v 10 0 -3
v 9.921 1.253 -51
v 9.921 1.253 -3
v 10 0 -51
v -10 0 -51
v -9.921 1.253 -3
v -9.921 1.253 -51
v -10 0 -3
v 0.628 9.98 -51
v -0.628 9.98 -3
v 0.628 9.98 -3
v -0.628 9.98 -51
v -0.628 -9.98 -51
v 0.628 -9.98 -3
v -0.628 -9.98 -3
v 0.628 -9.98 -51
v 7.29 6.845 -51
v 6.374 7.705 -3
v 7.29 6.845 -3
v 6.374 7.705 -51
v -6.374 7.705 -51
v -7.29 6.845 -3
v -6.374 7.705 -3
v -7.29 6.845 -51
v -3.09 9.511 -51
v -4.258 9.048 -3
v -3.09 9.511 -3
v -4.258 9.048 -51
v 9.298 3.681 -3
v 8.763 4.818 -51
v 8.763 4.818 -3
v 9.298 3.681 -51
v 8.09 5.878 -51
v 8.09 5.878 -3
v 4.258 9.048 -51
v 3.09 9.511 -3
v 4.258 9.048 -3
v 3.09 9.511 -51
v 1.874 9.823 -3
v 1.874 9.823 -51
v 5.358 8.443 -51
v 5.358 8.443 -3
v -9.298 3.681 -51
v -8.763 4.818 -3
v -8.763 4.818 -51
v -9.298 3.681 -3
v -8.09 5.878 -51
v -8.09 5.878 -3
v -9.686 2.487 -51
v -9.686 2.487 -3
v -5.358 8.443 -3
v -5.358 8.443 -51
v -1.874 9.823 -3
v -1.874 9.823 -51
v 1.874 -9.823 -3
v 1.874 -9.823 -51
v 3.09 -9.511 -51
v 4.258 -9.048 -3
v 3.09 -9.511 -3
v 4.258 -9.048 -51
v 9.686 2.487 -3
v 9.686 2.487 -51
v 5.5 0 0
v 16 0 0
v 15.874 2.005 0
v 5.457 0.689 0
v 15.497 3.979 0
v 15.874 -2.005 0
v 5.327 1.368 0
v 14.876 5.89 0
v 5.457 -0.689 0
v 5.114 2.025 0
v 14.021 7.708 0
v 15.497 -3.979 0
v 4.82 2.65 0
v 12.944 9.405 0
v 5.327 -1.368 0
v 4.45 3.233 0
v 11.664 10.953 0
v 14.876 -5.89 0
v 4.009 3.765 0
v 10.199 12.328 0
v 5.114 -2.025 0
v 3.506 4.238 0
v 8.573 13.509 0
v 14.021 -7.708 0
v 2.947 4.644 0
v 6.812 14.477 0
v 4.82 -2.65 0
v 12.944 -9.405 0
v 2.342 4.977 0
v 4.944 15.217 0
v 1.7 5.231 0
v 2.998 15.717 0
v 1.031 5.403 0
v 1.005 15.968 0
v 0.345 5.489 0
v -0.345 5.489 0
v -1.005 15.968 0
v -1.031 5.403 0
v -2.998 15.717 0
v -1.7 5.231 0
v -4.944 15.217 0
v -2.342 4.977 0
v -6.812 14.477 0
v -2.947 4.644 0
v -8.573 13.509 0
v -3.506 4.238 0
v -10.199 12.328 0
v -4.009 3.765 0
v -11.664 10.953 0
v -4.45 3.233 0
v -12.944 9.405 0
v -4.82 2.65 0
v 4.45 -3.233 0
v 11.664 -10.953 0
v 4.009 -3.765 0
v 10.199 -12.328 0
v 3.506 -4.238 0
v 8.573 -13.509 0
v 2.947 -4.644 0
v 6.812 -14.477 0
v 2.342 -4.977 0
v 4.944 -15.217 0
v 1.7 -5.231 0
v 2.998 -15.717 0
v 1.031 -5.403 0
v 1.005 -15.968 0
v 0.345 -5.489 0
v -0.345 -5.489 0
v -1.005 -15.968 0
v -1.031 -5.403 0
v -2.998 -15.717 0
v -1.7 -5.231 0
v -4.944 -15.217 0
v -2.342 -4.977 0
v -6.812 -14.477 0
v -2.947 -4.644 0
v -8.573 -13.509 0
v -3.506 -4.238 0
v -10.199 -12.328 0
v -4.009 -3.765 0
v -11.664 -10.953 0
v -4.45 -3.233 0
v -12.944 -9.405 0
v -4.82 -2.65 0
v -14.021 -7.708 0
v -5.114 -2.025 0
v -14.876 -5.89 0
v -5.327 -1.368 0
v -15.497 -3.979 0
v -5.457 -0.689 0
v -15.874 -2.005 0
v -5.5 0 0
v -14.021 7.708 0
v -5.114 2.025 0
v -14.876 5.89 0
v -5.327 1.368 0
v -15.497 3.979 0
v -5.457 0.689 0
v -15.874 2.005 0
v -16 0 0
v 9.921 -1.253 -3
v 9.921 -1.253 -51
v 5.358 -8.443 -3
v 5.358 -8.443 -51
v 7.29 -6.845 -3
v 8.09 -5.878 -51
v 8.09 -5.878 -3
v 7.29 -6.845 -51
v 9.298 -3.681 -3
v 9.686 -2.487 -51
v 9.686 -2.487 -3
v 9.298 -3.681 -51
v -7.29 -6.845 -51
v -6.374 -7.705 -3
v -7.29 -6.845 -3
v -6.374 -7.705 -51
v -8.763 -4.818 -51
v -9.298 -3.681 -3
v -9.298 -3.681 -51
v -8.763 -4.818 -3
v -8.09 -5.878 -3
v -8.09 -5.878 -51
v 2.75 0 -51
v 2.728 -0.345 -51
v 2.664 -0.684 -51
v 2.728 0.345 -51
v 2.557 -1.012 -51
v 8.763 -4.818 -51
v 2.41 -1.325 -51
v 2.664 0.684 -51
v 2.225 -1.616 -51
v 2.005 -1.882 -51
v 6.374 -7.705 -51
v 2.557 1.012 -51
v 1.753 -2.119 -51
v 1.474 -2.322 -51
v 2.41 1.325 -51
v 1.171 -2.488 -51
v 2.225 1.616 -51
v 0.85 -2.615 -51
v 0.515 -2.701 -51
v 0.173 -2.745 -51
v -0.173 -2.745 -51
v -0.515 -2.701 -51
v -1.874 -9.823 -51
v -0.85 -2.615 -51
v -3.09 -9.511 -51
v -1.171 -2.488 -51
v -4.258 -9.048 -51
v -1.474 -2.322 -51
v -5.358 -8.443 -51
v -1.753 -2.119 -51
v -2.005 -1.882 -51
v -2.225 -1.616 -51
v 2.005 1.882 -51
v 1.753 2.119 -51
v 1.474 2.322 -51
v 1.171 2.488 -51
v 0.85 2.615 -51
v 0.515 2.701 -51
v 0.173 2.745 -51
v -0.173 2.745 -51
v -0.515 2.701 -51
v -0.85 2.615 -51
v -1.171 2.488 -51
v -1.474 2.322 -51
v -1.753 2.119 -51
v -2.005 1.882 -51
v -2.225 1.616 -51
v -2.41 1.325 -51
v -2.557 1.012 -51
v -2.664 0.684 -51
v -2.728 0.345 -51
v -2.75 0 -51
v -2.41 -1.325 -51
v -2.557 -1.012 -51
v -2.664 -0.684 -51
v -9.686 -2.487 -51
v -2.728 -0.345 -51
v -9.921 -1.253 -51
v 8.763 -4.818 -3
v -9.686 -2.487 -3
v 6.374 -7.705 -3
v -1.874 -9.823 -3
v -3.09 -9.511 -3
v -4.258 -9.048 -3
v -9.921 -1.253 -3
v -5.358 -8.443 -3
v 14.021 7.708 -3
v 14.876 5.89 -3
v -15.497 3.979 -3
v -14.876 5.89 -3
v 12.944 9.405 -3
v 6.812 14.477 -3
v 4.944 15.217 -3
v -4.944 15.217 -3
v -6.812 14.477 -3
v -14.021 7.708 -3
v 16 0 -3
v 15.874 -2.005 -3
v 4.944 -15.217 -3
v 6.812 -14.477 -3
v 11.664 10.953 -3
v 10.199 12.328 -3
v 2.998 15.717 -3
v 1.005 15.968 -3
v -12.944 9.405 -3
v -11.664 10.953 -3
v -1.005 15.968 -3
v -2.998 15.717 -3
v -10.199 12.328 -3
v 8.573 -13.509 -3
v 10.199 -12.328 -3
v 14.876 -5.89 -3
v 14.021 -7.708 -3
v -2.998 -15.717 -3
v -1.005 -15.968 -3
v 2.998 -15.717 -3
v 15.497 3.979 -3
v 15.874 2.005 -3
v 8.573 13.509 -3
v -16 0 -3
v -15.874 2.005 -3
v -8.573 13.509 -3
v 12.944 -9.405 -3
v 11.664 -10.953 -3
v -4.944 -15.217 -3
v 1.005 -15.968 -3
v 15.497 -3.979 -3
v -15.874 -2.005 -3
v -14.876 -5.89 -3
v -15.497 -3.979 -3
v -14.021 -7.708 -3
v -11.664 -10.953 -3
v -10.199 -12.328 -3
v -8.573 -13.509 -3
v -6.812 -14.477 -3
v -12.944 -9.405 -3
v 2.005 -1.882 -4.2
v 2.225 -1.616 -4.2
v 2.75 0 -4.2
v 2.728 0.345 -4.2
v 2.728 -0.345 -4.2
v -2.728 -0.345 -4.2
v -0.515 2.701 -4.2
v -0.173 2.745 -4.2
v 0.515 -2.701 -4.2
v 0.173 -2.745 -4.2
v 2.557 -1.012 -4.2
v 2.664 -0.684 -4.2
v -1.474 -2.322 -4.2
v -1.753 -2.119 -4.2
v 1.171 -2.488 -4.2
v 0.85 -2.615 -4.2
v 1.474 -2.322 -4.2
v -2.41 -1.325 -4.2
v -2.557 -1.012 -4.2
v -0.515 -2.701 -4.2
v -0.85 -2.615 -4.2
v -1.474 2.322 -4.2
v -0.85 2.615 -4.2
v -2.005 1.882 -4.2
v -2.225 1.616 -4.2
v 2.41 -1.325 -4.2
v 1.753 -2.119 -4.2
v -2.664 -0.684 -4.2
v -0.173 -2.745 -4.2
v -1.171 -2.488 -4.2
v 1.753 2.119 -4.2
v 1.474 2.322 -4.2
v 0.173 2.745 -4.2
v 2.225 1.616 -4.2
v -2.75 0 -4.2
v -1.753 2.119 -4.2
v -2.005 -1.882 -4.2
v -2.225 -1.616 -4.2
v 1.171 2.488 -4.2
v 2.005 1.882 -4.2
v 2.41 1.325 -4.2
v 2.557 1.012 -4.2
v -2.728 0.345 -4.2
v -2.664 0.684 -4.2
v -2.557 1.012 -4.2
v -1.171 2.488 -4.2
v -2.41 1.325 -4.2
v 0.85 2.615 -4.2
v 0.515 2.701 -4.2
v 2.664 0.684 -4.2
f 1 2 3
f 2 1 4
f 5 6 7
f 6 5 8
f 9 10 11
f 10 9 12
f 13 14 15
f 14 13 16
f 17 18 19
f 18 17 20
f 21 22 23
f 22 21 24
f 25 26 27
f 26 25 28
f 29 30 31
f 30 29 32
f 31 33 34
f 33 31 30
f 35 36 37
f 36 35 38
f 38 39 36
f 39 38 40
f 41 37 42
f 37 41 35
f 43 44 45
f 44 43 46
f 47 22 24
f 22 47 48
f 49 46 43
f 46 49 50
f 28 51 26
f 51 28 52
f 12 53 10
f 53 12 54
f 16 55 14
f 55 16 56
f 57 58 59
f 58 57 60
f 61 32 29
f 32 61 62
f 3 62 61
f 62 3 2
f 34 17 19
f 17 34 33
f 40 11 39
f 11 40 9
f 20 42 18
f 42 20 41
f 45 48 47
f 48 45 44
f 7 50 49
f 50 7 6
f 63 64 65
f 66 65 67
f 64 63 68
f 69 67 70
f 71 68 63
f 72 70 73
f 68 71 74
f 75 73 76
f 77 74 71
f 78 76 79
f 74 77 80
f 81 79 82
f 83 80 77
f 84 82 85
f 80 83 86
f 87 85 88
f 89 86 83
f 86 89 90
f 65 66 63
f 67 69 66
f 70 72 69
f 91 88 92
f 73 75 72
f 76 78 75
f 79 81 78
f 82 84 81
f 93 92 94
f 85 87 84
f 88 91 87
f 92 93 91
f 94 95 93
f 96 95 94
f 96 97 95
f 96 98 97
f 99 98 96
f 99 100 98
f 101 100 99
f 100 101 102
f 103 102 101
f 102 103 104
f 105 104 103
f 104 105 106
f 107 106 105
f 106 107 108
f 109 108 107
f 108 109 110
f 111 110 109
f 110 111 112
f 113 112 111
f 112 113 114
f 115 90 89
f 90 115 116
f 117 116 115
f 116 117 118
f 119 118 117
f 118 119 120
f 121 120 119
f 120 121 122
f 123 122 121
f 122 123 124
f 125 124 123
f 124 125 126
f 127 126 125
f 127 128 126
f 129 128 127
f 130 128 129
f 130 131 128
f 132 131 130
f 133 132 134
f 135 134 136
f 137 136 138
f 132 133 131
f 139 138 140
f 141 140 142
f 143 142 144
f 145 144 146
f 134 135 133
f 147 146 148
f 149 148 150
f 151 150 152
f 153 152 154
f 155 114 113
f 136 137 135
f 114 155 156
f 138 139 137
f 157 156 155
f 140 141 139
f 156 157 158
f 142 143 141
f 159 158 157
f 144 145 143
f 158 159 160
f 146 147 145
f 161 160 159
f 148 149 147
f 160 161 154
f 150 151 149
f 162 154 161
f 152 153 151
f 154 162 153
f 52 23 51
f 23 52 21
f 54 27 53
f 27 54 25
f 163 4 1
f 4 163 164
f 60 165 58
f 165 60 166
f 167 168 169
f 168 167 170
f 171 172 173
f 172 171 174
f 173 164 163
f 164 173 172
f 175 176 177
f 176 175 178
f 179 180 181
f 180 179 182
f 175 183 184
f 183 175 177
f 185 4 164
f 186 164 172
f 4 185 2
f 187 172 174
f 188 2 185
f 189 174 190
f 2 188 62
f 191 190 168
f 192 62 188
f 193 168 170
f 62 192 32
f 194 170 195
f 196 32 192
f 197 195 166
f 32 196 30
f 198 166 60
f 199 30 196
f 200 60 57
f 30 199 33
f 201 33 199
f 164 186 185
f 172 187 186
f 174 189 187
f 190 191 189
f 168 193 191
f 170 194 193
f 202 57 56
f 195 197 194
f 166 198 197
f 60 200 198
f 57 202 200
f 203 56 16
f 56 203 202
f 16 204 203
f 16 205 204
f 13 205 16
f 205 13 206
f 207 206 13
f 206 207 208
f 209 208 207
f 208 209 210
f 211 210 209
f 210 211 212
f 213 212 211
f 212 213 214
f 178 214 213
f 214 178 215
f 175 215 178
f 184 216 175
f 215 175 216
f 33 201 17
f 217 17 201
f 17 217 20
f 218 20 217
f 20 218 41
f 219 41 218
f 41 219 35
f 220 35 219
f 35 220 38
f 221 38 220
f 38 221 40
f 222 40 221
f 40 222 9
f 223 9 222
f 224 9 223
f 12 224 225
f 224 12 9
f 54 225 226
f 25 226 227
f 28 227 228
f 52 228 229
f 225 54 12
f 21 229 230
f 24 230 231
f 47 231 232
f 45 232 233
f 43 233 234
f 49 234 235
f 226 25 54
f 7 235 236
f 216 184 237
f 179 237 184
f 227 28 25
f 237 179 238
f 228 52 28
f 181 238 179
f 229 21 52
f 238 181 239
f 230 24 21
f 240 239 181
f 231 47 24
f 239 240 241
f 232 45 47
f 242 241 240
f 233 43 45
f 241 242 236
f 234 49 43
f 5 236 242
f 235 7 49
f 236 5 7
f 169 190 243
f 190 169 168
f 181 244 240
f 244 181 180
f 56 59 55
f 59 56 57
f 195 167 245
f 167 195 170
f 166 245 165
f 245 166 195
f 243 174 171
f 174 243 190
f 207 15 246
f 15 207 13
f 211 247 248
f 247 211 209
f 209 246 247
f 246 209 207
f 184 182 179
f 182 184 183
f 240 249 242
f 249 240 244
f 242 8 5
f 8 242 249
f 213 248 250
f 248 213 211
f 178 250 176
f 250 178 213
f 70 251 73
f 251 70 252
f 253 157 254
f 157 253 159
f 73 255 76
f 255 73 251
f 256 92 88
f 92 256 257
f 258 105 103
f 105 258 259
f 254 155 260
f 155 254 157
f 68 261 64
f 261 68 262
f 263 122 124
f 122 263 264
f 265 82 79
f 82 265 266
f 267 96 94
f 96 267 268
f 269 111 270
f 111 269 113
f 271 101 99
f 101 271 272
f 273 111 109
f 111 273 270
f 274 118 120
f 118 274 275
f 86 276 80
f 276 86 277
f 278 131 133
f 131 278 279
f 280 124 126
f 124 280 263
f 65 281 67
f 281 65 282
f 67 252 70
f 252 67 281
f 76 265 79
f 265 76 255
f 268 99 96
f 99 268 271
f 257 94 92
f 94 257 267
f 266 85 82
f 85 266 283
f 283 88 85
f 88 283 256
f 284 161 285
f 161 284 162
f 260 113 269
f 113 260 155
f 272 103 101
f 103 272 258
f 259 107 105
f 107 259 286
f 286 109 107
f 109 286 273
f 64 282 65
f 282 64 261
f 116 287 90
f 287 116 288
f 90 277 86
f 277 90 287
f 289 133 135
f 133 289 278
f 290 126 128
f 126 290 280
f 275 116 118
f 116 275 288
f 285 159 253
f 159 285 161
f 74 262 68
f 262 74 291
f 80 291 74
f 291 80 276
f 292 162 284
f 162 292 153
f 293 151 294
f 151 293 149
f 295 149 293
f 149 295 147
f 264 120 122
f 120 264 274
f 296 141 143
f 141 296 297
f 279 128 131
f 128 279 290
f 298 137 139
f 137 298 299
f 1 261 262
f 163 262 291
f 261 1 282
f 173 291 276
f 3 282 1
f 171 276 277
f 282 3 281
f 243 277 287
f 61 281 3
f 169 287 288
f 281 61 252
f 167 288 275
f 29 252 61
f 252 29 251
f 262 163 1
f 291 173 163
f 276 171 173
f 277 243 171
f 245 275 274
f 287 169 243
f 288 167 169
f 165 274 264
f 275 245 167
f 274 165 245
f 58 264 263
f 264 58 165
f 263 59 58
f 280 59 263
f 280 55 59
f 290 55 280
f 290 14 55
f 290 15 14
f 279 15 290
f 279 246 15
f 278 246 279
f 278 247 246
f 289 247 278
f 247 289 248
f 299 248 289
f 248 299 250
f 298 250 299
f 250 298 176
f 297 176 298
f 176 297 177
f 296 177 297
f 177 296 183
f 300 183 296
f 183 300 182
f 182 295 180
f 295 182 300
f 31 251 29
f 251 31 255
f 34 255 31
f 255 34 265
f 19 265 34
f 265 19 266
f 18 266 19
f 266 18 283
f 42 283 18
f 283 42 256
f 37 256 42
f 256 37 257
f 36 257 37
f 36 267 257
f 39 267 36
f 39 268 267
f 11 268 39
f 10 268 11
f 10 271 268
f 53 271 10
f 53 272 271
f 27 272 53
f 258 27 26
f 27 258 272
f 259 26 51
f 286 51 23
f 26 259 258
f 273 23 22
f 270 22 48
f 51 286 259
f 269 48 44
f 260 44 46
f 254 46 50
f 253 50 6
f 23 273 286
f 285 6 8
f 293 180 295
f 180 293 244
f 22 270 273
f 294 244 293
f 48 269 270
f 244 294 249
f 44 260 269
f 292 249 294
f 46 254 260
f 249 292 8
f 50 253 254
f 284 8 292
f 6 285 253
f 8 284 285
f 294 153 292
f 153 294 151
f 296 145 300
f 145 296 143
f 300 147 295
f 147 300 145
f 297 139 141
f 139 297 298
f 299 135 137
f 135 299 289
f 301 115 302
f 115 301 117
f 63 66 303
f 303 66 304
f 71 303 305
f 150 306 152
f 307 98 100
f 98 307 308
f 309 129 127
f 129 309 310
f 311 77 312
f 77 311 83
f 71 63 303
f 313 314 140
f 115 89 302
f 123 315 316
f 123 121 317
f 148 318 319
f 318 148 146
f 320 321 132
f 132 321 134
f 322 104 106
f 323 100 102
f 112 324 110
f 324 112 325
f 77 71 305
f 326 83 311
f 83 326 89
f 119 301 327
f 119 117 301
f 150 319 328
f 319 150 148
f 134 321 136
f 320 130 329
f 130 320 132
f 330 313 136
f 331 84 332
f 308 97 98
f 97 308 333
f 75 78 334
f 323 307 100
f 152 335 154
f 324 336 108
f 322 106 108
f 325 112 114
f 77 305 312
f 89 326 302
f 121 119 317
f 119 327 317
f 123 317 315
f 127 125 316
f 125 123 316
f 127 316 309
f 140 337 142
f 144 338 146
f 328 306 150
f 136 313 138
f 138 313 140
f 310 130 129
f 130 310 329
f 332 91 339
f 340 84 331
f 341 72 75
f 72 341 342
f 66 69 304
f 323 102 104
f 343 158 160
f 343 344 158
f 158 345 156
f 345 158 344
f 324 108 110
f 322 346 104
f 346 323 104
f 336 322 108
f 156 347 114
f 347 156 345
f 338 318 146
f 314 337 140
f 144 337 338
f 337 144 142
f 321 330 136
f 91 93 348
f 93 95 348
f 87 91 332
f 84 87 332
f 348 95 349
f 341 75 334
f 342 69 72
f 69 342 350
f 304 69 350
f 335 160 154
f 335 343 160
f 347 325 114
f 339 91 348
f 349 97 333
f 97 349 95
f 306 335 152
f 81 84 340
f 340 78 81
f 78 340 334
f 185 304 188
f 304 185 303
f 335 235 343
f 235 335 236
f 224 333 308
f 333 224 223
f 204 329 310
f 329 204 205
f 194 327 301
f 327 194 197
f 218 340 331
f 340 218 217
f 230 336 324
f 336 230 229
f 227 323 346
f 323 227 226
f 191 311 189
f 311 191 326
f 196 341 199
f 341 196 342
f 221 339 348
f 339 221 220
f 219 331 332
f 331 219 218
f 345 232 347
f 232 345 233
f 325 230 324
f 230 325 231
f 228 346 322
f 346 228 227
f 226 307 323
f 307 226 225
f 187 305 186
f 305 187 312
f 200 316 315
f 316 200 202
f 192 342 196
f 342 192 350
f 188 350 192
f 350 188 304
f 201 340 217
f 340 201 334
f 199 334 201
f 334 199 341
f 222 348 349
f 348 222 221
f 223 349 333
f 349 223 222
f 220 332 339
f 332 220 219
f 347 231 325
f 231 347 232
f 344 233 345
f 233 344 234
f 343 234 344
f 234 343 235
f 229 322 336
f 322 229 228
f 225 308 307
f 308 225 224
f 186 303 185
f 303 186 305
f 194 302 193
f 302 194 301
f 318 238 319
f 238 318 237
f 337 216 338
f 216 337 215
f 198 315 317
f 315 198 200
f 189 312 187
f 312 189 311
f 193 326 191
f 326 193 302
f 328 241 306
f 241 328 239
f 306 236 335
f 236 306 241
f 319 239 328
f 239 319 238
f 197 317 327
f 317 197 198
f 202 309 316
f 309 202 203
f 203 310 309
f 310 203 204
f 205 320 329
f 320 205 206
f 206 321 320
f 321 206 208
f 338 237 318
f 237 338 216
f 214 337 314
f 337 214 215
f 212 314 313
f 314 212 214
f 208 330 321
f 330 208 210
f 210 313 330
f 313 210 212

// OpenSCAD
$fn = 50;


difference() {
	union() {
		translate(v = [0, 0, -51.0000000000]) {
			cylinder(h = 51, r = 10.0000000000);
		}
		translate(v = [0, 0, -3.0000000000]) {
			cylinder(h = 3, r = 16.0000000000);
		}
	}
	union() {
		translate(v = [0, 0, 0]) {
			rotate(a = [0, 0, 0]) {
				difference() {
					union() {
						#translate(v = [0, 0, -51.0000000000]) {
							cylinder(h = 51, r = 2.2500000000);
						}
						#translate(v = [0, 0, -4.2000000000]) {
							cylinder(h = 4.2000000000, r = 10.0000000000, r1 = 2.7500000000, r2 = 5.5000000000);
						}
						#translate(v = [0, 0, -51.0000000000]) {
							cylinder(h = 51, r = 2.7500000000);
						}
						#translate(v = [0, 0, -51.0000000000]) {
							cylinder(h = 51, r = 2.2500000000);
						}
					}
					union();
				}
			}
		}
	}
}
